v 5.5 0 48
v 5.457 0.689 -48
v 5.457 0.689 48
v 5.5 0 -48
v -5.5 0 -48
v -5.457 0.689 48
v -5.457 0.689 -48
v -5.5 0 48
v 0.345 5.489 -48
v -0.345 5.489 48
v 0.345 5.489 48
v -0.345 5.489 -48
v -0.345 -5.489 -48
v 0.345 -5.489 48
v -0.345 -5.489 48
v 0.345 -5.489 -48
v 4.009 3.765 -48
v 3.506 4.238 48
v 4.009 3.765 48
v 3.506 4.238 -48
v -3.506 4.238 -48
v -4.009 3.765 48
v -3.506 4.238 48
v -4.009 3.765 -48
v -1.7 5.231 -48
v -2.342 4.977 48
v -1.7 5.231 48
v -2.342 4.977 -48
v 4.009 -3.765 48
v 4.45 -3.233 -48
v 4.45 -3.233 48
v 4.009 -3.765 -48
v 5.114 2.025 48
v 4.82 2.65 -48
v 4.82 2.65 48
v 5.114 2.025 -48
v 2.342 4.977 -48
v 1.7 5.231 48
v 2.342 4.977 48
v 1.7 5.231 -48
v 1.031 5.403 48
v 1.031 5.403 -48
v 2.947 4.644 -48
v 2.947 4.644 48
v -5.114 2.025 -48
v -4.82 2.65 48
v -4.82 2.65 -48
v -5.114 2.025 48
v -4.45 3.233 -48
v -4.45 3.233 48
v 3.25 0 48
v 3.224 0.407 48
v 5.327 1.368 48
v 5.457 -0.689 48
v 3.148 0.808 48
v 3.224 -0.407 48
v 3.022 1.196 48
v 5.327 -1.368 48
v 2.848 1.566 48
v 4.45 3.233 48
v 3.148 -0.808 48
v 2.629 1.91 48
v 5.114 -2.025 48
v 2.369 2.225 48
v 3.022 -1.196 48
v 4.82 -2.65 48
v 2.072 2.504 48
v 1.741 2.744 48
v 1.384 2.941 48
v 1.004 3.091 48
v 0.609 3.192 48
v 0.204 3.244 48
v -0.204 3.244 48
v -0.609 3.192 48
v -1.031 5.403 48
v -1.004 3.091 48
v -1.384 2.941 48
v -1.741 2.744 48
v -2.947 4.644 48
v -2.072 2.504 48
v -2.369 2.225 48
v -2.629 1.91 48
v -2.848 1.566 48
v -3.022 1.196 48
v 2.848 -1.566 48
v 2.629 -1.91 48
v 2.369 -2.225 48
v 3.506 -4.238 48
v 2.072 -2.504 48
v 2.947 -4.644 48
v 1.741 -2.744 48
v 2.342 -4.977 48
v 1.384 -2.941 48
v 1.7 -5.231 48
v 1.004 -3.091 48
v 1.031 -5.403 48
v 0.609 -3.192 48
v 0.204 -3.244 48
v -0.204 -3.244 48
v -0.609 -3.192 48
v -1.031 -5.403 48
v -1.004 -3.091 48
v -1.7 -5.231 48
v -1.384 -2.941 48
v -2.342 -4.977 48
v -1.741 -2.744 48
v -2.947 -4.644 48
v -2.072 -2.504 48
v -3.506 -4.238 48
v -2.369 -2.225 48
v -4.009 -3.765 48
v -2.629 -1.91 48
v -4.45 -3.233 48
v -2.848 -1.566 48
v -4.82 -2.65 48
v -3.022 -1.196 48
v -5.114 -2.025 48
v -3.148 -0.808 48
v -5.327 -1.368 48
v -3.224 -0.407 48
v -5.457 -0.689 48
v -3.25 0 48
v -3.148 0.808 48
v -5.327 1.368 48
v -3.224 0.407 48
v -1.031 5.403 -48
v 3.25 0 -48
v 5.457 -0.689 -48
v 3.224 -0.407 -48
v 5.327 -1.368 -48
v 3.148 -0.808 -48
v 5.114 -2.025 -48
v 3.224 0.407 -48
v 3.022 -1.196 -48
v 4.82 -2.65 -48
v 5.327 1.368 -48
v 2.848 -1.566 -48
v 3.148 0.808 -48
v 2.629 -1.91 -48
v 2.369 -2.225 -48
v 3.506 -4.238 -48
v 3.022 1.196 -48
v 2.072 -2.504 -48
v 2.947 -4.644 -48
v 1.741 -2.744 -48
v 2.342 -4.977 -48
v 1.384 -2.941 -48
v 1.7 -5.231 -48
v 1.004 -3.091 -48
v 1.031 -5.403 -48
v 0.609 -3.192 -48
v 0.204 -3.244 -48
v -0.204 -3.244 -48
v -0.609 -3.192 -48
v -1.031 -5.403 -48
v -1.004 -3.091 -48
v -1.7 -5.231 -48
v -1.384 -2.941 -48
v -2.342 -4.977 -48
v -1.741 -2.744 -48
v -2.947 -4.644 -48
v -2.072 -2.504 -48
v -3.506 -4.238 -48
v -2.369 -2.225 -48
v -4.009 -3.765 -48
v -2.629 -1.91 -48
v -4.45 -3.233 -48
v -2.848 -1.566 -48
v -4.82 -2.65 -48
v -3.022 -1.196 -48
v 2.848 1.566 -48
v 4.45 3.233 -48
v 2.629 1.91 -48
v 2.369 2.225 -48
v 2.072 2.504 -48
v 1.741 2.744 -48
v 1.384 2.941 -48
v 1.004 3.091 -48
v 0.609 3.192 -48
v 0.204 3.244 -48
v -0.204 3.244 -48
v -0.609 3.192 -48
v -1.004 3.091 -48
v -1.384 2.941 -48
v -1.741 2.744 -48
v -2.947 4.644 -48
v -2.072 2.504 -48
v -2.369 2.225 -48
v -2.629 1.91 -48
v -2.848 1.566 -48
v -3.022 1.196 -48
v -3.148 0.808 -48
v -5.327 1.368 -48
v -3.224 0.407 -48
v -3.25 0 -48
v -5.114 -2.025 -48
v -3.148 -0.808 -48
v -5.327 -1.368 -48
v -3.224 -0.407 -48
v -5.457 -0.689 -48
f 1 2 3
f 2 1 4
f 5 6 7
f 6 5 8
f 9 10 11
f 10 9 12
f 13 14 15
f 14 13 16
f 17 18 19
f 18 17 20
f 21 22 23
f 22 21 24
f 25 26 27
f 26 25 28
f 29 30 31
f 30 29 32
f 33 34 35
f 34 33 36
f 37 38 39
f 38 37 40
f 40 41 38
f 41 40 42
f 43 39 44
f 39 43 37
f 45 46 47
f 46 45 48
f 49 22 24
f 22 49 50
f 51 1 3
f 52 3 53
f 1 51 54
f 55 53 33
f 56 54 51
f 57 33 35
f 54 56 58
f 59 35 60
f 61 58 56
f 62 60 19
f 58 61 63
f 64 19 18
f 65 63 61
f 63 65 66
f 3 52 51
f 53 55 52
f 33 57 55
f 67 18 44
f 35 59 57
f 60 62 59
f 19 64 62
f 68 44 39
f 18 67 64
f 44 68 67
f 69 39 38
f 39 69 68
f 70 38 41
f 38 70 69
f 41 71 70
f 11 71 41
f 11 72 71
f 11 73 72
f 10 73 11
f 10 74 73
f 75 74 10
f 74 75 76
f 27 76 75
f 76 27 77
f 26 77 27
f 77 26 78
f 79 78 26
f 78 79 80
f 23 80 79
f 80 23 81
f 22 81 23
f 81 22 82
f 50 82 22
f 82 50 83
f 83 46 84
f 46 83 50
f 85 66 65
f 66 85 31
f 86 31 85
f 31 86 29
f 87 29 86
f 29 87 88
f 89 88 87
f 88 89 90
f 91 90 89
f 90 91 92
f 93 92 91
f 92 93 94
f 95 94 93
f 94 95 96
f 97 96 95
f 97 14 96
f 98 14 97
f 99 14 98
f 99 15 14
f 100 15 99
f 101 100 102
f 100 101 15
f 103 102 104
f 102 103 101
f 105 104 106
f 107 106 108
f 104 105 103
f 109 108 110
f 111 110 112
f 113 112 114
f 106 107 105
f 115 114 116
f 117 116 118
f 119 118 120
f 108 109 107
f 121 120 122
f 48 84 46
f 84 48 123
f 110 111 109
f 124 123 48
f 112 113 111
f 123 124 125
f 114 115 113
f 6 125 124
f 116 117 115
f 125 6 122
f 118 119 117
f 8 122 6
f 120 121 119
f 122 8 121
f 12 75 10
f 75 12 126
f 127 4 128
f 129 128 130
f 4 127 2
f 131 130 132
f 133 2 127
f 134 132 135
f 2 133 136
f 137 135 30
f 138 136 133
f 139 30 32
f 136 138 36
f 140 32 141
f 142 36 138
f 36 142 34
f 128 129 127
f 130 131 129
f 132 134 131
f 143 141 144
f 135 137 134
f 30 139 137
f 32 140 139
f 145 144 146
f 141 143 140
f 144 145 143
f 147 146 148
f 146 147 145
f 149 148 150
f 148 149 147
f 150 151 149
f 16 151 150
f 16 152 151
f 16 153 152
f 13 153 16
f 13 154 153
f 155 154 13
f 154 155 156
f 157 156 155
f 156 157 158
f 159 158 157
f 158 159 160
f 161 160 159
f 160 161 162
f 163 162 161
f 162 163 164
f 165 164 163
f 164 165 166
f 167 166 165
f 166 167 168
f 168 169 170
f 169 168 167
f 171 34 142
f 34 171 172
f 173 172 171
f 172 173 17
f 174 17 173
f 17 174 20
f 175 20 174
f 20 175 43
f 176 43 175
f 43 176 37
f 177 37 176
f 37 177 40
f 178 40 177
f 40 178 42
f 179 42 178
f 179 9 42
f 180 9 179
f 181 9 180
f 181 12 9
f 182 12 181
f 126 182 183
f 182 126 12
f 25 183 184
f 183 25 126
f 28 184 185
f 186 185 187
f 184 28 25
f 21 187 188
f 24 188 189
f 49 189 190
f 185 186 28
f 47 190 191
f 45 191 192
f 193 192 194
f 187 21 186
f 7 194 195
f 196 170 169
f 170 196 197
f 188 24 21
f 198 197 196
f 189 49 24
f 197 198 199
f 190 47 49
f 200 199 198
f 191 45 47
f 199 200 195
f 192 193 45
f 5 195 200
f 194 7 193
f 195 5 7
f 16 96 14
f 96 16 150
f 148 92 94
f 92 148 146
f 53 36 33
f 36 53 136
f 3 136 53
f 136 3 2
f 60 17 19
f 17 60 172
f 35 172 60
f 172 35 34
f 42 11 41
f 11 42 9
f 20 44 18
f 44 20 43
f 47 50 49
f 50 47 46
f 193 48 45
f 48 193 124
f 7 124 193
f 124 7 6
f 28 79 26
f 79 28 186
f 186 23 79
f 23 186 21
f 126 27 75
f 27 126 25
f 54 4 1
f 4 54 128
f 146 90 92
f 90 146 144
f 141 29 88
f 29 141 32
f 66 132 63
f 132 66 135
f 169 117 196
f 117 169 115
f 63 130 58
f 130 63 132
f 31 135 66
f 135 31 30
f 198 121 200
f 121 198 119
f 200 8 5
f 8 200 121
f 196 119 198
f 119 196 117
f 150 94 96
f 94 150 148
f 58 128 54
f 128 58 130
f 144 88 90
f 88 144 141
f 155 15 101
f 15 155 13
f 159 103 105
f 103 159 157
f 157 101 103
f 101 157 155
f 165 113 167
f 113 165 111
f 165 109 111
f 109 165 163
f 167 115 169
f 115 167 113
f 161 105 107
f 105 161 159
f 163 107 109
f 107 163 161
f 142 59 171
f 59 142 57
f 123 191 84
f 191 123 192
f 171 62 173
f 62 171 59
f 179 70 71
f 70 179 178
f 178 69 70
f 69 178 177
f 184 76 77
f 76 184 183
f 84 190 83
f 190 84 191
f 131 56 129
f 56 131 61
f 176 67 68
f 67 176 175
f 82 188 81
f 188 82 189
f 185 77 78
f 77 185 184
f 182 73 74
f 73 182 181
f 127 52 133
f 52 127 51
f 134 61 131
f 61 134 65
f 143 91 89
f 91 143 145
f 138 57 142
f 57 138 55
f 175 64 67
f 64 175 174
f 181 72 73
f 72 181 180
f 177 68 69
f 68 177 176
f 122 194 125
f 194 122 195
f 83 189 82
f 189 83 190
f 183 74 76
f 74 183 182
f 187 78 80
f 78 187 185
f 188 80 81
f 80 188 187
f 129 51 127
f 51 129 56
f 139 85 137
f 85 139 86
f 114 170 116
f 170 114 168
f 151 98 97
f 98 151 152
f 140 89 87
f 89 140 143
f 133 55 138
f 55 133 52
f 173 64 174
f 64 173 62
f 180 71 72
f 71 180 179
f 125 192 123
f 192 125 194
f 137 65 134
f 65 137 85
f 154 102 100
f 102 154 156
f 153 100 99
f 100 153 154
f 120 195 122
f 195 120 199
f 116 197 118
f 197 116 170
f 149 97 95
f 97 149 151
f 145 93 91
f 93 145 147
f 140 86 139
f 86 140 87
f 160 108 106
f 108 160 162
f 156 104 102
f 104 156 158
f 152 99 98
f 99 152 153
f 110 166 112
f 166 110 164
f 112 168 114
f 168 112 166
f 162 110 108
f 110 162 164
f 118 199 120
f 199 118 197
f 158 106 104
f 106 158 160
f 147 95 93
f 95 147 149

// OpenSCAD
$fn = 50;


difference() {
	union() {
		translate(v = [0, 0, -48.0000000000]) {
			cylinder(h = 96, r = 5.5000000000);
		}
	}
	union() {
		translate(v = [0, 0, -100.0000000000]) {
			cylinder(h = 200, r = 3.2500000000);
		}
	}
}
